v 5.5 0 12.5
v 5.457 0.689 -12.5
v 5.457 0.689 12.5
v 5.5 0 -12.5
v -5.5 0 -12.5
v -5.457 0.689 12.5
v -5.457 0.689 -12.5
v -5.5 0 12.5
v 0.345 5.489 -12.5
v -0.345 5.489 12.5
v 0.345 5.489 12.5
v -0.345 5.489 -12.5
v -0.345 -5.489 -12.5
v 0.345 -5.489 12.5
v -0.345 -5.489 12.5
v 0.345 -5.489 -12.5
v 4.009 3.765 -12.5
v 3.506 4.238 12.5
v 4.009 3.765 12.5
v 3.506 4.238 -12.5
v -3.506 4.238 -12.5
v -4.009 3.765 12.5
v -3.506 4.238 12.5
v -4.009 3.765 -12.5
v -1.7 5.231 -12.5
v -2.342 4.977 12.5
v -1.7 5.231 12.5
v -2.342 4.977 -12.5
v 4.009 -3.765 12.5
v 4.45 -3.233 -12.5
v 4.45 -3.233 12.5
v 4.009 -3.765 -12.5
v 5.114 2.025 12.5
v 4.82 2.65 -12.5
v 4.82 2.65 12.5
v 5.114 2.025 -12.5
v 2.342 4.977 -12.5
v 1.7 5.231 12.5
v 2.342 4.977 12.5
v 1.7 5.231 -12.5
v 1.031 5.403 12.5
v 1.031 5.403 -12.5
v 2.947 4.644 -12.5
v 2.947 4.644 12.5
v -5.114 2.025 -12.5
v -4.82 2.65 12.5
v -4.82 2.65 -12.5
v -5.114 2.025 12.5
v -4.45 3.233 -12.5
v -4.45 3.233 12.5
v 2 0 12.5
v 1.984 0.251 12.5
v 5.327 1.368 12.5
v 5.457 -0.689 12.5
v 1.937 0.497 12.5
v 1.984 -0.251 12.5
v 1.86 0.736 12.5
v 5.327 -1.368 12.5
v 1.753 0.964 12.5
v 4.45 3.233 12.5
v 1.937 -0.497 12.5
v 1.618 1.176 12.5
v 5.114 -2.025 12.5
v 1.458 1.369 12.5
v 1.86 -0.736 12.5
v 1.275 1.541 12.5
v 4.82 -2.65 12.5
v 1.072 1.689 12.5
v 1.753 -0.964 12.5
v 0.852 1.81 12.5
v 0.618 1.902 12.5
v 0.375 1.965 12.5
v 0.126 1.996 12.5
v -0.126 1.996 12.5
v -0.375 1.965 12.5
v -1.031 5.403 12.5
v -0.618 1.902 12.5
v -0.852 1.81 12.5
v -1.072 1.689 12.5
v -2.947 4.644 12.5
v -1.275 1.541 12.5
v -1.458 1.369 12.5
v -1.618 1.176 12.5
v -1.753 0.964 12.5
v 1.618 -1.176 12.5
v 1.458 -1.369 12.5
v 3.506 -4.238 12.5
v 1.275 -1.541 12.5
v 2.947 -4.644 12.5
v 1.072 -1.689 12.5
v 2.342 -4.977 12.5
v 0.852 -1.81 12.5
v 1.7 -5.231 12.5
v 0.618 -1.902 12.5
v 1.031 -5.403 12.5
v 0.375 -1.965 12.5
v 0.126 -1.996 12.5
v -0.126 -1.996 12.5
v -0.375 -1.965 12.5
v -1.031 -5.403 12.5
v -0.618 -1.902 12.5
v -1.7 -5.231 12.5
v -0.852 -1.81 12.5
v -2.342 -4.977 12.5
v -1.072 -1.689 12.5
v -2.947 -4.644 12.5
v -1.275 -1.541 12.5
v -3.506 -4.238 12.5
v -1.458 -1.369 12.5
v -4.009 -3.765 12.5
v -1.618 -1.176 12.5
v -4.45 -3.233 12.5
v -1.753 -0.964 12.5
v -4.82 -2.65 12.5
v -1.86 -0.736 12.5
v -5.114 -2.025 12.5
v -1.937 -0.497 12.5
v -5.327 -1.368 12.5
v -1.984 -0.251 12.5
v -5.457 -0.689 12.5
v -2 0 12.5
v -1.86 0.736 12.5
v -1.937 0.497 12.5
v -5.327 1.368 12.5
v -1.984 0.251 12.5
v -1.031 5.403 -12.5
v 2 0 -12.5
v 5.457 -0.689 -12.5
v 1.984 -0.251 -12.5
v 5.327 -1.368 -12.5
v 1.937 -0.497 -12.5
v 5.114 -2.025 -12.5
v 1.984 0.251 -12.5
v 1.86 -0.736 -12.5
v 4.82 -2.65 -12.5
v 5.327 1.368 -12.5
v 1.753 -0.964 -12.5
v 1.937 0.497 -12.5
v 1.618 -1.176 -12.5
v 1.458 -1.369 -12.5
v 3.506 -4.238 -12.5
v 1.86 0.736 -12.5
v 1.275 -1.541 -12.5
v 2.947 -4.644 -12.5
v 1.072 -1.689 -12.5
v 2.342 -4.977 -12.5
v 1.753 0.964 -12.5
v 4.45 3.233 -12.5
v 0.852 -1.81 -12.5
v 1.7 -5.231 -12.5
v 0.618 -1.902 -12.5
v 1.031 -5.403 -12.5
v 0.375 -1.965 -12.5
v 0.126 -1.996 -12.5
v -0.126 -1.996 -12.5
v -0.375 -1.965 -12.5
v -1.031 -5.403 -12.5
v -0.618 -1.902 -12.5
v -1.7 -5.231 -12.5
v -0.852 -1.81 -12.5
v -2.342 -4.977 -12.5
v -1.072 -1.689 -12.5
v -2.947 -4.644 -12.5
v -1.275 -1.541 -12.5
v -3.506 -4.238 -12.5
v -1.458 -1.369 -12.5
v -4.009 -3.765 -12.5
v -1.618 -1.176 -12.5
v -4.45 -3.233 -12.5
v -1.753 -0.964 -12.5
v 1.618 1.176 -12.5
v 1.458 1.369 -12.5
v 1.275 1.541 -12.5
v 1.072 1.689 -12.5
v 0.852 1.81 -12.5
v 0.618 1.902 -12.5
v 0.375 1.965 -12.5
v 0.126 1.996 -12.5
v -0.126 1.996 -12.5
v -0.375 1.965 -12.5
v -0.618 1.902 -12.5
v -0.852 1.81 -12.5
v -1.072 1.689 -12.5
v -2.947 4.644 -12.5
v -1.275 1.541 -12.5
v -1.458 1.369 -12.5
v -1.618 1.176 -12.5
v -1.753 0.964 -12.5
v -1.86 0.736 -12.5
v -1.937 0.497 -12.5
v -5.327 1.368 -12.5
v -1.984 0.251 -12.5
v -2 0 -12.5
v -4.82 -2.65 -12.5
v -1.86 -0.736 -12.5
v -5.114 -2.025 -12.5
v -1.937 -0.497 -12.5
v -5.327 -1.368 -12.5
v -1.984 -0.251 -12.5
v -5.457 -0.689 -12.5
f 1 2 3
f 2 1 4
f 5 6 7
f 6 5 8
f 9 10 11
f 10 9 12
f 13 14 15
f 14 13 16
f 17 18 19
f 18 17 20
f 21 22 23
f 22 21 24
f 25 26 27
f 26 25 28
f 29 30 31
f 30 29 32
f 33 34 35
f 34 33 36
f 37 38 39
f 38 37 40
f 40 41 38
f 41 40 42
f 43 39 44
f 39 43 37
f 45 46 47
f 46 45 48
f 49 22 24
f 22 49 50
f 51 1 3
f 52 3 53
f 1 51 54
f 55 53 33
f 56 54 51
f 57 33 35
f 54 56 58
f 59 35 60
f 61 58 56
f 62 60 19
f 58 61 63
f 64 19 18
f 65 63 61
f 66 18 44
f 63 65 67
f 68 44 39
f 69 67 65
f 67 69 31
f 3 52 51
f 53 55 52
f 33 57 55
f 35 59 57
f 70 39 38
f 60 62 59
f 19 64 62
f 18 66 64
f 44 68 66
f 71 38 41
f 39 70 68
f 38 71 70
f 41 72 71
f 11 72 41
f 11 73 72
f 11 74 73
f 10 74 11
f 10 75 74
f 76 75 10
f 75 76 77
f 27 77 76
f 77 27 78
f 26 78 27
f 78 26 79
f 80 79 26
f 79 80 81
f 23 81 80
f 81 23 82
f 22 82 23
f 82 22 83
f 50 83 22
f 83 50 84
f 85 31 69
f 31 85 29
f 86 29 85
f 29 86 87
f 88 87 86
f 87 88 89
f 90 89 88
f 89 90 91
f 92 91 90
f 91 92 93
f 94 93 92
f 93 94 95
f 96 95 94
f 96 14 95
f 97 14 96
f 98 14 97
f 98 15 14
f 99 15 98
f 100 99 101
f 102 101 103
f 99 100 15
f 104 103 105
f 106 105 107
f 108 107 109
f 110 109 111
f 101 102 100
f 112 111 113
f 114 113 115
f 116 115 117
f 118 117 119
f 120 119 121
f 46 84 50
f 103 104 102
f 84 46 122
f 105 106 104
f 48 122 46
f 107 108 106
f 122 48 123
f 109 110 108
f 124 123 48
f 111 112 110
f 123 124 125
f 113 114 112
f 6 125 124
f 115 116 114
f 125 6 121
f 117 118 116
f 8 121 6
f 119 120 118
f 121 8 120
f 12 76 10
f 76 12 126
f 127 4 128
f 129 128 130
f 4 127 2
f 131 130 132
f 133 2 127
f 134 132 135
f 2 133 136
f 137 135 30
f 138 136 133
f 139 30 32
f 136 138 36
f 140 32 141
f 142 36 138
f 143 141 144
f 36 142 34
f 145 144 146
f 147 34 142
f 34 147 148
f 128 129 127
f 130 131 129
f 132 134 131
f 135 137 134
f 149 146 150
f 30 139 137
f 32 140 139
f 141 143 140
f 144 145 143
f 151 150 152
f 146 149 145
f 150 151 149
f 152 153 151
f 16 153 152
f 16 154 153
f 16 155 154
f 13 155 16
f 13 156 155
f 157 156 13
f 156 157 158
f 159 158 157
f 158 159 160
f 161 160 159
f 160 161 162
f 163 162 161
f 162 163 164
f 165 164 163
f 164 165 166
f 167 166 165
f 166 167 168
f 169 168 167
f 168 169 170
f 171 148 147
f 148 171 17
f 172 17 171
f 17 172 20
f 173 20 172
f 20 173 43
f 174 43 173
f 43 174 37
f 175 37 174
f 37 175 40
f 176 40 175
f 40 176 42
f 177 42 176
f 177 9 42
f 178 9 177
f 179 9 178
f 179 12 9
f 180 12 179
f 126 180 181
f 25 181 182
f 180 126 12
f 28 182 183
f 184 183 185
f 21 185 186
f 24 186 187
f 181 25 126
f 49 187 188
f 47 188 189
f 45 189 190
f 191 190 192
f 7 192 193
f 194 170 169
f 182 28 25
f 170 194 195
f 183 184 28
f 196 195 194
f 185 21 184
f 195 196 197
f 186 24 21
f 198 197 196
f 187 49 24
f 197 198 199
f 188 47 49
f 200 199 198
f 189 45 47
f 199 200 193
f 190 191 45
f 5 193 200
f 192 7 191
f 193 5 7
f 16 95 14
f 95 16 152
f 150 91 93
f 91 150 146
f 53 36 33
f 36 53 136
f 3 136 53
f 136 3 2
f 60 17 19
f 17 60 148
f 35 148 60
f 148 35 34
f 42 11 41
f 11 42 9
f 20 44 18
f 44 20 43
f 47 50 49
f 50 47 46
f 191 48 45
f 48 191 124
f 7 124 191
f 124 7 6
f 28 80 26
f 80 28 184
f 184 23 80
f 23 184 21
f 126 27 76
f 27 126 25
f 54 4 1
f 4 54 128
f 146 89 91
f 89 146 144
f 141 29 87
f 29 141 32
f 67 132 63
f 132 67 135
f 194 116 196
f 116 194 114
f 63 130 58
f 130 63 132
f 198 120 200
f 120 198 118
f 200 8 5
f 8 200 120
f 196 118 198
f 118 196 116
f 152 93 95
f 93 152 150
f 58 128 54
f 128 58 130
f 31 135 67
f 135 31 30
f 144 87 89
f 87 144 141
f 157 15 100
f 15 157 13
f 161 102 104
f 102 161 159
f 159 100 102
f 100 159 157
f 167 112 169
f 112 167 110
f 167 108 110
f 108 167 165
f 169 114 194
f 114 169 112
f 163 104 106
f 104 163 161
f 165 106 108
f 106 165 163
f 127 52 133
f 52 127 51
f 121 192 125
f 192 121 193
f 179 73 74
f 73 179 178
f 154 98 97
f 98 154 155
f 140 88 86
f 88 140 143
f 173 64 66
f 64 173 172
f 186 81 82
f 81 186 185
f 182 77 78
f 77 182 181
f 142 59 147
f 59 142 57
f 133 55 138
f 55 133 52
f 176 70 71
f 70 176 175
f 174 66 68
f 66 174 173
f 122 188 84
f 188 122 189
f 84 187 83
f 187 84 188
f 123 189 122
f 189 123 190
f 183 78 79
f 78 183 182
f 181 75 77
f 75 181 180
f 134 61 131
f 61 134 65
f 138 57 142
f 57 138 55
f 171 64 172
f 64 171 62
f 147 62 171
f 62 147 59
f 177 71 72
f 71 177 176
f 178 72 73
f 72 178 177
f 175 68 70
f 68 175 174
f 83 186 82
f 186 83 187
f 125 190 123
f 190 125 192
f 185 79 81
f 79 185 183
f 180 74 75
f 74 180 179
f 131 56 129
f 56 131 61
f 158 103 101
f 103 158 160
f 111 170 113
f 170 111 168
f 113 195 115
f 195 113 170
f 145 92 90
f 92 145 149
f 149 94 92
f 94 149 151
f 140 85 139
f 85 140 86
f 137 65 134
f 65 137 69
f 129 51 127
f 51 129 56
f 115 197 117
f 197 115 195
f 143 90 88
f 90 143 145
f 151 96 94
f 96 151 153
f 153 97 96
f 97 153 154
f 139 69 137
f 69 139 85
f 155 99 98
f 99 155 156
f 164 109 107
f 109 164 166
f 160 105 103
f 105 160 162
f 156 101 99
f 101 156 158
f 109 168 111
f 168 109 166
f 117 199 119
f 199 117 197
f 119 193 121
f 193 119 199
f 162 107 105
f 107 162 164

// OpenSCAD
$fn = 50;


difference() {
	union() {
		translate(v = [0, 0, -12.5000000000]) {
			cylinder(h = 25, r = 5.5000000000);
		}
	}
	union() {
		translate(v = [0, 0, -100.0000000000]) {
			cylinder(h = 200, r = 2);
		}
	}
}
